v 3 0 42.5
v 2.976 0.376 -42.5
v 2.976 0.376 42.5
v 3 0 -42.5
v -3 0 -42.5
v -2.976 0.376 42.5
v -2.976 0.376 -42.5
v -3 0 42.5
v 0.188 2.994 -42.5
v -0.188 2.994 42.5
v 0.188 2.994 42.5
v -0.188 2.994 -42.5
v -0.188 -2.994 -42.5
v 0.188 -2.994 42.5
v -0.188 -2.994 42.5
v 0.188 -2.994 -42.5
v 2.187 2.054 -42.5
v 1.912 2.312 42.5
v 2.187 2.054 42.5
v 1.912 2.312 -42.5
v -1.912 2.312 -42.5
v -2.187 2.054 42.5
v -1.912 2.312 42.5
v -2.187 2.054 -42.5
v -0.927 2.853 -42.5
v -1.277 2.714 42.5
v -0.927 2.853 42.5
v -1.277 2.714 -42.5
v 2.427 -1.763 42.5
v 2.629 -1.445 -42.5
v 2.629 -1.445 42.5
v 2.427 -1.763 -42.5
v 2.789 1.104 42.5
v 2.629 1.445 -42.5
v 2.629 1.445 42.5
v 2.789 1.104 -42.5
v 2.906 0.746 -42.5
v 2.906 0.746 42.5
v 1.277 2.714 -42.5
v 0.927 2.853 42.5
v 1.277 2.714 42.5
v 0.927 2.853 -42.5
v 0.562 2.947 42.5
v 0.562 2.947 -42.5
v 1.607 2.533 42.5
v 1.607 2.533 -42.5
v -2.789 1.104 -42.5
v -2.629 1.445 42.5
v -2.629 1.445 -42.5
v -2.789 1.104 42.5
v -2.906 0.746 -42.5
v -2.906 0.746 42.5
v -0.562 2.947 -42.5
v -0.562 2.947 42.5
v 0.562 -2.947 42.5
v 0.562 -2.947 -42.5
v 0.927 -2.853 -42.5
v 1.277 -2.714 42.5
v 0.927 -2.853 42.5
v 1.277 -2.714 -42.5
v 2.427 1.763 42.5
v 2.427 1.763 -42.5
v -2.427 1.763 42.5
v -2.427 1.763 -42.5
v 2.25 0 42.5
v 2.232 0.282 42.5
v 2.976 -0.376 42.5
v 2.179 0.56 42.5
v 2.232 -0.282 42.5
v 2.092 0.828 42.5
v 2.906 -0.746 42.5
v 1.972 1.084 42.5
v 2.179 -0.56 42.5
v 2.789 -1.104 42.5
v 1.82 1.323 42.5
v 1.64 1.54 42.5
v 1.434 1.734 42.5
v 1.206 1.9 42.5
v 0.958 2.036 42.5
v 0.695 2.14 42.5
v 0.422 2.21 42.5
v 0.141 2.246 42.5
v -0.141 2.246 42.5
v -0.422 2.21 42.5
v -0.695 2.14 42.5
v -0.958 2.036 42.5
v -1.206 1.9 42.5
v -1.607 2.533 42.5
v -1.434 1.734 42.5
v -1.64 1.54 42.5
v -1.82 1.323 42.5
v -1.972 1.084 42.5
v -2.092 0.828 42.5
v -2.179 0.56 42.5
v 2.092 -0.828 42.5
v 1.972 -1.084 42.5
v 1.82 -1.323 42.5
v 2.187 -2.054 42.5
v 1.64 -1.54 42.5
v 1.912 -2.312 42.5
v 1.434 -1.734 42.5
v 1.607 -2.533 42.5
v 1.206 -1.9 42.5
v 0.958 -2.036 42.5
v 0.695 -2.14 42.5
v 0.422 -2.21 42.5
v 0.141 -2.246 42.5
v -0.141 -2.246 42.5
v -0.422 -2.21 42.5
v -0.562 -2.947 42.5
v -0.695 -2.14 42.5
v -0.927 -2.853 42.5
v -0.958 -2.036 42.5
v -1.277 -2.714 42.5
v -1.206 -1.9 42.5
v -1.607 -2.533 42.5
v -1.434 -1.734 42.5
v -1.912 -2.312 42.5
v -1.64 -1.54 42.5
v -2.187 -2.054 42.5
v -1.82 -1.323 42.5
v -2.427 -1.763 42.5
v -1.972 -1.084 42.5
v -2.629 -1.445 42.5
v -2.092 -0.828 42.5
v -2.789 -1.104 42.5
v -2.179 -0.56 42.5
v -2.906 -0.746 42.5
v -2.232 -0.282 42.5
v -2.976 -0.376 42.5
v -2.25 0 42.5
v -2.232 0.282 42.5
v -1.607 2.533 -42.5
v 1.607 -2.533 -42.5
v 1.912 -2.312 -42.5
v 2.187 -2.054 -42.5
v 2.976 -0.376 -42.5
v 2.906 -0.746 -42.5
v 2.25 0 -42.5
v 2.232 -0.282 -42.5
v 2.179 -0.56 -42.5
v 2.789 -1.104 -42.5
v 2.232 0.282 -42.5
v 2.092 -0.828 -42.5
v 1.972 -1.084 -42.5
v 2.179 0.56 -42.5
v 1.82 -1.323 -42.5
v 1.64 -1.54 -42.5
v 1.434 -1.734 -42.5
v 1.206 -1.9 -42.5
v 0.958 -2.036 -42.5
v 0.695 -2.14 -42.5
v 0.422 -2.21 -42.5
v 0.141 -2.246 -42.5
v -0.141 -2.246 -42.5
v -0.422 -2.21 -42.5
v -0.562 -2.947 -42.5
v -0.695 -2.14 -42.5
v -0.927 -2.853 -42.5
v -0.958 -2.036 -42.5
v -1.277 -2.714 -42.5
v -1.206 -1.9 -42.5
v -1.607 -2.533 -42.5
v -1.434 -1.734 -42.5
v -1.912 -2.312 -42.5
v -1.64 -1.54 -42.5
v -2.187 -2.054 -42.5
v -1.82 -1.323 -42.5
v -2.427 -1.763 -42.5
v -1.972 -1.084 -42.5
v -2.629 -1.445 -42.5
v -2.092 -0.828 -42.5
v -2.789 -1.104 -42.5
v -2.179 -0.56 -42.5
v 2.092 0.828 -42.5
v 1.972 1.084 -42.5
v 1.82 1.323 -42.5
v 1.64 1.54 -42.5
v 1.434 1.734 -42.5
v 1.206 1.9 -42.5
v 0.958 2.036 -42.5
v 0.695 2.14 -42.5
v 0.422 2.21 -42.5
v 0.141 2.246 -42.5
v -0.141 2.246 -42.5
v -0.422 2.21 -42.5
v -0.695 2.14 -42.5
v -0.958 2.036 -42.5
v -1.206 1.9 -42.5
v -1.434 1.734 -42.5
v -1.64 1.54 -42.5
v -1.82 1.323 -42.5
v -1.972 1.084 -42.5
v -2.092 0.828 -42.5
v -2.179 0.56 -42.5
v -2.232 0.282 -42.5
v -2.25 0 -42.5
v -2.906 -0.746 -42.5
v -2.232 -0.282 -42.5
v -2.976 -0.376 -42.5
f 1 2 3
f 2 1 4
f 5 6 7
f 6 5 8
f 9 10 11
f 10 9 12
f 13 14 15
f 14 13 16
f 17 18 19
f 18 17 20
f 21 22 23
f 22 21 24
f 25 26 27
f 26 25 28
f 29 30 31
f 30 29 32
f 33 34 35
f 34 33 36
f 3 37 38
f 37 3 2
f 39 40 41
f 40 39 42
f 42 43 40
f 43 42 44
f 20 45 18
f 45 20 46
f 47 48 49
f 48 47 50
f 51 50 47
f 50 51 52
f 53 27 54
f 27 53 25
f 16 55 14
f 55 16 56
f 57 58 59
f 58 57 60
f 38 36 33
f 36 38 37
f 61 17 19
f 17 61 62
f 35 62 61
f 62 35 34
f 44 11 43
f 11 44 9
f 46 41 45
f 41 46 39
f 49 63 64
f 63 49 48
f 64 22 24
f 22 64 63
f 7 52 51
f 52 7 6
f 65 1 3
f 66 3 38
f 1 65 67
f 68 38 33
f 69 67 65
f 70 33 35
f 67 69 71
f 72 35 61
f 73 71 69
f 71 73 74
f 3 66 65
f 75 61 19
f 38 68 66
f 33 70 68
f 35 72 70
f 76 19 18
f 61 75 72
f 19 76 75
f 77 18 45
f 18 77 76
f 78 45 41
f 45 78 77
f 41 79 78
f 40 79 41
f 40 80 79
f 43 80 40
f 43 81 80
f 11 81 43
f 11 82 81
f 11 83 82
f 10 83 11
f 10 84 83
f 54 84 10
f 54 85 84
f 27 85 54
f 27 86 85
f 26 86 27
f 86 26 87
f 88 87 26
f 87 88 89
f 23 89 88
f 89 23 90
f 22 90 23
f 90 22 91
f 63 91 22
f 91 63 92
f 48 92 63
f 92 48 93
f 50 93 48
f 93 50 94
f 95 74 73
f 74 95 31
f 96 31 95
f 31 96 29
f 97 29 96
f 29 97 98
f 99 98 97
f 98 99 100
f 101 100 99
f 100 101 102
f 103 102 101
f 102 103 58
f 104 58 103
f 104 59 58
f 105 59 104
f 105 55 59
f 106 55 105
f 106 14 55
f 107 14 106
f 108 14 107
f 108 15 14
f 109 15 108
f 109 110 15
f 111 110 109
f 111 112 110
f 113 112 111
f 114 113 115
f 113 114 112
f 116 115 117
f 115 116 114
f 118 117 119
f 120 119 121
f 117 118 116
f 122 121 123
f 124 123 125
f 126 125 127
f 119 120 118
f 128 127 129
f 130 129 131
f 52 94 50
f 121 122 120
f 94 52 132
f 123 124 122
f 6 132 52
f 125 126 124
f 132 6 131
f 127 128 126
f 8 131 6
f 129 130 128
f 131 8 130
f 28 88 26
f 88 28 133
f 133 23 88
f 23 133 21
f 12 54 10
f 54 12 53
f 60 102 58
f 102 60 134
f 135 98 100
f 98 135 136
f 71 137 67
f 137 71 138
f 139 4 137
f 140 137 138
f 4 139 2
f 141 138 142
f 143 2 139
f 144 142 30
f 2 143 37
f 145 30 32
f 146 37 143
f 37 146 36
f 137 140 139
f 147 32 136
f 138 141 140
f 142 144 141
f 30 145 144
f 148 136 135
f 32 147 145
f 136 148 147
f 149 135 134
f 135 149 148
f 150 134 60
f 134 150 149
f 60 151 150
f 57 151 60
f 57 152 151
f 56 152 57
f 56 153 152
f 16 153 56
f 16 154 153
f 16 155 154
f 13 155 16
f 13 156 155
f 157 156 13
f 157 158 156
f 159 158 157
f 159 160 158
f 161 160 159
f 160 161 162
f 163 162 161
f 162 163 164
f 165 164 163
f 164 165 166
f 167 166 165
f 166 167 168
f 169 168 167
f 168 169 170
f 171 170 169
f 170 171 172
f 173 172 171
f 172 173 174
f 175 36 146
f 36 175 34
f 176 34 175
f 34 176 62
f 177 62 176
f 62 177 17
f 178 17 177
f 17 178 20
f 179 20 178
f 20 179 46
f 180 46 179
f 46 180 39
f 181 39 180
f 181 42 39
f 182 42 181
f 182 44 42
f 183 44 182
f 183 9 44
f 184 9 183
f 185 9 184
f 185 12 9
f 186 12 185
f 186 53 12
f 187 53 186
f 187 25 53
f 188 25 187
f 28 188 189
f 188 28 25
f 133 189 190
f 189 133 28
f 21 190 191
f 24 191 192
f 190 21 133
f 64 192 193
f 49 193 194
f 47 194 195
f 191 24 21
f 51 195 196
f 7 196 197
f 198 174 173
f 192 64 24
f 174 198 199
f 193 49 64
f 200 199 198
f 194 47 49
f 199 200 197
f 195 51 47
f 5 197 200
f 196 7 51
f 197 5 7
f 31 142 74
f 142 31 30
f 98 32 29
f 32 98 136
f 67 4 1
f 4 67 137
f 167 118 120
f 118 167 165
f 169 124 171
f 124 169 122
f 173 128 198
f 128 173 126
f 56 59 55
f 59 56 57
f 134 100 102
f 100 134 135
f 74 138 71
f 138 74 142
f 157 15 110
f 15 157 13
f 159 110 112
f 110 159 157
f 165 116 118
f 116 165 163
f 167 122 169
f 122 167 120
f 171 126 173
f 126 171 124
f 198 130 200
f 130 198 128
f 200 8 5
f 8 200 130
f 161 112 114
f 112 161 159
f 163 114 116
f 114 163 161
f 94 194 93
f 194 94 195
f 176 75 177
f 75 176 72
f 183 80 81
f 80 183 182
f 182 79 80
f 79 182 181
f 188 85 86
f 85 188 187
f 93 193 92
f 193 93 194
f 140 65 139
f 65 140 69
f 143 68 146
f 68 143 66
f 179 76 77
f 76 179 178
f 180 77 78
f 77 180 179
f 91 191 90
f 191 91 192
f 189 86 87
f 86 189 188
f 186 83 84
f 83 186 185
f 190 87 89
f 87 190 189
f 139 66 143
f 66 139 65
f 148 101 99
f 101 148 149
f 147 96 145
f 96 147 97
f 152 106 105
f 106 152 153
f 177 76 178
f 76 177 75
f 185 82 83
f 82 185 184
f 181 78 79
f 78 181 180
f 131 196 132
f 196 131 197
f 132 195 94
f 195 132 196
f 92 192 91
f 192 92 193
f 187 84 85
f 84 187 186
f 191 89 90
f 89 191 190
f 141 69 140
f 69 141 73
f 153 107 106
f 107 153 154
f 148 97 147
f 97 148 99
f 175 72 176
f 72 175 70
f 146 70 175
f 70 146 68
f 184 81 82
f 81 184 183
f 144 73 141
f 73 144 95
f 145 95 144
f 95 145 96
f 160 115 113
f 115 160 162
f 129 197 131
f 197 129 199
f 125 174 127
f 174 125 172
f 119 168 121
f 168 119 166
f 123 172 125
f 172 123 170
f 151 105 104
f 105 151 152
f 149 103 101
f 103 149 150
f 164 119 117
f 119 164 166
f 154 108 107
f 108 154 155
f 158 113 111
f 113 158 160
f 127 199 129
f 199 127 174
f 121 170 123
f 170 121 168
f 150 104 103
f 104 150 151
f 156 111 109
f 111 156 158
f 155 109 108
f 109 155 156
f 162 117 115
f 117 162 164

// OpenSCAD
$fn = 50;


difference() {
	union() {
		translate(v = [0, 0, -42.5000000000]) {
			cylinder(h = 85, r = 3.0000000000);
		}
	}
	union() {
		translate(v = [0, 0, -100.0000000000]) {
			cylinder(h = 200, r = 2.2500000000);
		}
	}
}
